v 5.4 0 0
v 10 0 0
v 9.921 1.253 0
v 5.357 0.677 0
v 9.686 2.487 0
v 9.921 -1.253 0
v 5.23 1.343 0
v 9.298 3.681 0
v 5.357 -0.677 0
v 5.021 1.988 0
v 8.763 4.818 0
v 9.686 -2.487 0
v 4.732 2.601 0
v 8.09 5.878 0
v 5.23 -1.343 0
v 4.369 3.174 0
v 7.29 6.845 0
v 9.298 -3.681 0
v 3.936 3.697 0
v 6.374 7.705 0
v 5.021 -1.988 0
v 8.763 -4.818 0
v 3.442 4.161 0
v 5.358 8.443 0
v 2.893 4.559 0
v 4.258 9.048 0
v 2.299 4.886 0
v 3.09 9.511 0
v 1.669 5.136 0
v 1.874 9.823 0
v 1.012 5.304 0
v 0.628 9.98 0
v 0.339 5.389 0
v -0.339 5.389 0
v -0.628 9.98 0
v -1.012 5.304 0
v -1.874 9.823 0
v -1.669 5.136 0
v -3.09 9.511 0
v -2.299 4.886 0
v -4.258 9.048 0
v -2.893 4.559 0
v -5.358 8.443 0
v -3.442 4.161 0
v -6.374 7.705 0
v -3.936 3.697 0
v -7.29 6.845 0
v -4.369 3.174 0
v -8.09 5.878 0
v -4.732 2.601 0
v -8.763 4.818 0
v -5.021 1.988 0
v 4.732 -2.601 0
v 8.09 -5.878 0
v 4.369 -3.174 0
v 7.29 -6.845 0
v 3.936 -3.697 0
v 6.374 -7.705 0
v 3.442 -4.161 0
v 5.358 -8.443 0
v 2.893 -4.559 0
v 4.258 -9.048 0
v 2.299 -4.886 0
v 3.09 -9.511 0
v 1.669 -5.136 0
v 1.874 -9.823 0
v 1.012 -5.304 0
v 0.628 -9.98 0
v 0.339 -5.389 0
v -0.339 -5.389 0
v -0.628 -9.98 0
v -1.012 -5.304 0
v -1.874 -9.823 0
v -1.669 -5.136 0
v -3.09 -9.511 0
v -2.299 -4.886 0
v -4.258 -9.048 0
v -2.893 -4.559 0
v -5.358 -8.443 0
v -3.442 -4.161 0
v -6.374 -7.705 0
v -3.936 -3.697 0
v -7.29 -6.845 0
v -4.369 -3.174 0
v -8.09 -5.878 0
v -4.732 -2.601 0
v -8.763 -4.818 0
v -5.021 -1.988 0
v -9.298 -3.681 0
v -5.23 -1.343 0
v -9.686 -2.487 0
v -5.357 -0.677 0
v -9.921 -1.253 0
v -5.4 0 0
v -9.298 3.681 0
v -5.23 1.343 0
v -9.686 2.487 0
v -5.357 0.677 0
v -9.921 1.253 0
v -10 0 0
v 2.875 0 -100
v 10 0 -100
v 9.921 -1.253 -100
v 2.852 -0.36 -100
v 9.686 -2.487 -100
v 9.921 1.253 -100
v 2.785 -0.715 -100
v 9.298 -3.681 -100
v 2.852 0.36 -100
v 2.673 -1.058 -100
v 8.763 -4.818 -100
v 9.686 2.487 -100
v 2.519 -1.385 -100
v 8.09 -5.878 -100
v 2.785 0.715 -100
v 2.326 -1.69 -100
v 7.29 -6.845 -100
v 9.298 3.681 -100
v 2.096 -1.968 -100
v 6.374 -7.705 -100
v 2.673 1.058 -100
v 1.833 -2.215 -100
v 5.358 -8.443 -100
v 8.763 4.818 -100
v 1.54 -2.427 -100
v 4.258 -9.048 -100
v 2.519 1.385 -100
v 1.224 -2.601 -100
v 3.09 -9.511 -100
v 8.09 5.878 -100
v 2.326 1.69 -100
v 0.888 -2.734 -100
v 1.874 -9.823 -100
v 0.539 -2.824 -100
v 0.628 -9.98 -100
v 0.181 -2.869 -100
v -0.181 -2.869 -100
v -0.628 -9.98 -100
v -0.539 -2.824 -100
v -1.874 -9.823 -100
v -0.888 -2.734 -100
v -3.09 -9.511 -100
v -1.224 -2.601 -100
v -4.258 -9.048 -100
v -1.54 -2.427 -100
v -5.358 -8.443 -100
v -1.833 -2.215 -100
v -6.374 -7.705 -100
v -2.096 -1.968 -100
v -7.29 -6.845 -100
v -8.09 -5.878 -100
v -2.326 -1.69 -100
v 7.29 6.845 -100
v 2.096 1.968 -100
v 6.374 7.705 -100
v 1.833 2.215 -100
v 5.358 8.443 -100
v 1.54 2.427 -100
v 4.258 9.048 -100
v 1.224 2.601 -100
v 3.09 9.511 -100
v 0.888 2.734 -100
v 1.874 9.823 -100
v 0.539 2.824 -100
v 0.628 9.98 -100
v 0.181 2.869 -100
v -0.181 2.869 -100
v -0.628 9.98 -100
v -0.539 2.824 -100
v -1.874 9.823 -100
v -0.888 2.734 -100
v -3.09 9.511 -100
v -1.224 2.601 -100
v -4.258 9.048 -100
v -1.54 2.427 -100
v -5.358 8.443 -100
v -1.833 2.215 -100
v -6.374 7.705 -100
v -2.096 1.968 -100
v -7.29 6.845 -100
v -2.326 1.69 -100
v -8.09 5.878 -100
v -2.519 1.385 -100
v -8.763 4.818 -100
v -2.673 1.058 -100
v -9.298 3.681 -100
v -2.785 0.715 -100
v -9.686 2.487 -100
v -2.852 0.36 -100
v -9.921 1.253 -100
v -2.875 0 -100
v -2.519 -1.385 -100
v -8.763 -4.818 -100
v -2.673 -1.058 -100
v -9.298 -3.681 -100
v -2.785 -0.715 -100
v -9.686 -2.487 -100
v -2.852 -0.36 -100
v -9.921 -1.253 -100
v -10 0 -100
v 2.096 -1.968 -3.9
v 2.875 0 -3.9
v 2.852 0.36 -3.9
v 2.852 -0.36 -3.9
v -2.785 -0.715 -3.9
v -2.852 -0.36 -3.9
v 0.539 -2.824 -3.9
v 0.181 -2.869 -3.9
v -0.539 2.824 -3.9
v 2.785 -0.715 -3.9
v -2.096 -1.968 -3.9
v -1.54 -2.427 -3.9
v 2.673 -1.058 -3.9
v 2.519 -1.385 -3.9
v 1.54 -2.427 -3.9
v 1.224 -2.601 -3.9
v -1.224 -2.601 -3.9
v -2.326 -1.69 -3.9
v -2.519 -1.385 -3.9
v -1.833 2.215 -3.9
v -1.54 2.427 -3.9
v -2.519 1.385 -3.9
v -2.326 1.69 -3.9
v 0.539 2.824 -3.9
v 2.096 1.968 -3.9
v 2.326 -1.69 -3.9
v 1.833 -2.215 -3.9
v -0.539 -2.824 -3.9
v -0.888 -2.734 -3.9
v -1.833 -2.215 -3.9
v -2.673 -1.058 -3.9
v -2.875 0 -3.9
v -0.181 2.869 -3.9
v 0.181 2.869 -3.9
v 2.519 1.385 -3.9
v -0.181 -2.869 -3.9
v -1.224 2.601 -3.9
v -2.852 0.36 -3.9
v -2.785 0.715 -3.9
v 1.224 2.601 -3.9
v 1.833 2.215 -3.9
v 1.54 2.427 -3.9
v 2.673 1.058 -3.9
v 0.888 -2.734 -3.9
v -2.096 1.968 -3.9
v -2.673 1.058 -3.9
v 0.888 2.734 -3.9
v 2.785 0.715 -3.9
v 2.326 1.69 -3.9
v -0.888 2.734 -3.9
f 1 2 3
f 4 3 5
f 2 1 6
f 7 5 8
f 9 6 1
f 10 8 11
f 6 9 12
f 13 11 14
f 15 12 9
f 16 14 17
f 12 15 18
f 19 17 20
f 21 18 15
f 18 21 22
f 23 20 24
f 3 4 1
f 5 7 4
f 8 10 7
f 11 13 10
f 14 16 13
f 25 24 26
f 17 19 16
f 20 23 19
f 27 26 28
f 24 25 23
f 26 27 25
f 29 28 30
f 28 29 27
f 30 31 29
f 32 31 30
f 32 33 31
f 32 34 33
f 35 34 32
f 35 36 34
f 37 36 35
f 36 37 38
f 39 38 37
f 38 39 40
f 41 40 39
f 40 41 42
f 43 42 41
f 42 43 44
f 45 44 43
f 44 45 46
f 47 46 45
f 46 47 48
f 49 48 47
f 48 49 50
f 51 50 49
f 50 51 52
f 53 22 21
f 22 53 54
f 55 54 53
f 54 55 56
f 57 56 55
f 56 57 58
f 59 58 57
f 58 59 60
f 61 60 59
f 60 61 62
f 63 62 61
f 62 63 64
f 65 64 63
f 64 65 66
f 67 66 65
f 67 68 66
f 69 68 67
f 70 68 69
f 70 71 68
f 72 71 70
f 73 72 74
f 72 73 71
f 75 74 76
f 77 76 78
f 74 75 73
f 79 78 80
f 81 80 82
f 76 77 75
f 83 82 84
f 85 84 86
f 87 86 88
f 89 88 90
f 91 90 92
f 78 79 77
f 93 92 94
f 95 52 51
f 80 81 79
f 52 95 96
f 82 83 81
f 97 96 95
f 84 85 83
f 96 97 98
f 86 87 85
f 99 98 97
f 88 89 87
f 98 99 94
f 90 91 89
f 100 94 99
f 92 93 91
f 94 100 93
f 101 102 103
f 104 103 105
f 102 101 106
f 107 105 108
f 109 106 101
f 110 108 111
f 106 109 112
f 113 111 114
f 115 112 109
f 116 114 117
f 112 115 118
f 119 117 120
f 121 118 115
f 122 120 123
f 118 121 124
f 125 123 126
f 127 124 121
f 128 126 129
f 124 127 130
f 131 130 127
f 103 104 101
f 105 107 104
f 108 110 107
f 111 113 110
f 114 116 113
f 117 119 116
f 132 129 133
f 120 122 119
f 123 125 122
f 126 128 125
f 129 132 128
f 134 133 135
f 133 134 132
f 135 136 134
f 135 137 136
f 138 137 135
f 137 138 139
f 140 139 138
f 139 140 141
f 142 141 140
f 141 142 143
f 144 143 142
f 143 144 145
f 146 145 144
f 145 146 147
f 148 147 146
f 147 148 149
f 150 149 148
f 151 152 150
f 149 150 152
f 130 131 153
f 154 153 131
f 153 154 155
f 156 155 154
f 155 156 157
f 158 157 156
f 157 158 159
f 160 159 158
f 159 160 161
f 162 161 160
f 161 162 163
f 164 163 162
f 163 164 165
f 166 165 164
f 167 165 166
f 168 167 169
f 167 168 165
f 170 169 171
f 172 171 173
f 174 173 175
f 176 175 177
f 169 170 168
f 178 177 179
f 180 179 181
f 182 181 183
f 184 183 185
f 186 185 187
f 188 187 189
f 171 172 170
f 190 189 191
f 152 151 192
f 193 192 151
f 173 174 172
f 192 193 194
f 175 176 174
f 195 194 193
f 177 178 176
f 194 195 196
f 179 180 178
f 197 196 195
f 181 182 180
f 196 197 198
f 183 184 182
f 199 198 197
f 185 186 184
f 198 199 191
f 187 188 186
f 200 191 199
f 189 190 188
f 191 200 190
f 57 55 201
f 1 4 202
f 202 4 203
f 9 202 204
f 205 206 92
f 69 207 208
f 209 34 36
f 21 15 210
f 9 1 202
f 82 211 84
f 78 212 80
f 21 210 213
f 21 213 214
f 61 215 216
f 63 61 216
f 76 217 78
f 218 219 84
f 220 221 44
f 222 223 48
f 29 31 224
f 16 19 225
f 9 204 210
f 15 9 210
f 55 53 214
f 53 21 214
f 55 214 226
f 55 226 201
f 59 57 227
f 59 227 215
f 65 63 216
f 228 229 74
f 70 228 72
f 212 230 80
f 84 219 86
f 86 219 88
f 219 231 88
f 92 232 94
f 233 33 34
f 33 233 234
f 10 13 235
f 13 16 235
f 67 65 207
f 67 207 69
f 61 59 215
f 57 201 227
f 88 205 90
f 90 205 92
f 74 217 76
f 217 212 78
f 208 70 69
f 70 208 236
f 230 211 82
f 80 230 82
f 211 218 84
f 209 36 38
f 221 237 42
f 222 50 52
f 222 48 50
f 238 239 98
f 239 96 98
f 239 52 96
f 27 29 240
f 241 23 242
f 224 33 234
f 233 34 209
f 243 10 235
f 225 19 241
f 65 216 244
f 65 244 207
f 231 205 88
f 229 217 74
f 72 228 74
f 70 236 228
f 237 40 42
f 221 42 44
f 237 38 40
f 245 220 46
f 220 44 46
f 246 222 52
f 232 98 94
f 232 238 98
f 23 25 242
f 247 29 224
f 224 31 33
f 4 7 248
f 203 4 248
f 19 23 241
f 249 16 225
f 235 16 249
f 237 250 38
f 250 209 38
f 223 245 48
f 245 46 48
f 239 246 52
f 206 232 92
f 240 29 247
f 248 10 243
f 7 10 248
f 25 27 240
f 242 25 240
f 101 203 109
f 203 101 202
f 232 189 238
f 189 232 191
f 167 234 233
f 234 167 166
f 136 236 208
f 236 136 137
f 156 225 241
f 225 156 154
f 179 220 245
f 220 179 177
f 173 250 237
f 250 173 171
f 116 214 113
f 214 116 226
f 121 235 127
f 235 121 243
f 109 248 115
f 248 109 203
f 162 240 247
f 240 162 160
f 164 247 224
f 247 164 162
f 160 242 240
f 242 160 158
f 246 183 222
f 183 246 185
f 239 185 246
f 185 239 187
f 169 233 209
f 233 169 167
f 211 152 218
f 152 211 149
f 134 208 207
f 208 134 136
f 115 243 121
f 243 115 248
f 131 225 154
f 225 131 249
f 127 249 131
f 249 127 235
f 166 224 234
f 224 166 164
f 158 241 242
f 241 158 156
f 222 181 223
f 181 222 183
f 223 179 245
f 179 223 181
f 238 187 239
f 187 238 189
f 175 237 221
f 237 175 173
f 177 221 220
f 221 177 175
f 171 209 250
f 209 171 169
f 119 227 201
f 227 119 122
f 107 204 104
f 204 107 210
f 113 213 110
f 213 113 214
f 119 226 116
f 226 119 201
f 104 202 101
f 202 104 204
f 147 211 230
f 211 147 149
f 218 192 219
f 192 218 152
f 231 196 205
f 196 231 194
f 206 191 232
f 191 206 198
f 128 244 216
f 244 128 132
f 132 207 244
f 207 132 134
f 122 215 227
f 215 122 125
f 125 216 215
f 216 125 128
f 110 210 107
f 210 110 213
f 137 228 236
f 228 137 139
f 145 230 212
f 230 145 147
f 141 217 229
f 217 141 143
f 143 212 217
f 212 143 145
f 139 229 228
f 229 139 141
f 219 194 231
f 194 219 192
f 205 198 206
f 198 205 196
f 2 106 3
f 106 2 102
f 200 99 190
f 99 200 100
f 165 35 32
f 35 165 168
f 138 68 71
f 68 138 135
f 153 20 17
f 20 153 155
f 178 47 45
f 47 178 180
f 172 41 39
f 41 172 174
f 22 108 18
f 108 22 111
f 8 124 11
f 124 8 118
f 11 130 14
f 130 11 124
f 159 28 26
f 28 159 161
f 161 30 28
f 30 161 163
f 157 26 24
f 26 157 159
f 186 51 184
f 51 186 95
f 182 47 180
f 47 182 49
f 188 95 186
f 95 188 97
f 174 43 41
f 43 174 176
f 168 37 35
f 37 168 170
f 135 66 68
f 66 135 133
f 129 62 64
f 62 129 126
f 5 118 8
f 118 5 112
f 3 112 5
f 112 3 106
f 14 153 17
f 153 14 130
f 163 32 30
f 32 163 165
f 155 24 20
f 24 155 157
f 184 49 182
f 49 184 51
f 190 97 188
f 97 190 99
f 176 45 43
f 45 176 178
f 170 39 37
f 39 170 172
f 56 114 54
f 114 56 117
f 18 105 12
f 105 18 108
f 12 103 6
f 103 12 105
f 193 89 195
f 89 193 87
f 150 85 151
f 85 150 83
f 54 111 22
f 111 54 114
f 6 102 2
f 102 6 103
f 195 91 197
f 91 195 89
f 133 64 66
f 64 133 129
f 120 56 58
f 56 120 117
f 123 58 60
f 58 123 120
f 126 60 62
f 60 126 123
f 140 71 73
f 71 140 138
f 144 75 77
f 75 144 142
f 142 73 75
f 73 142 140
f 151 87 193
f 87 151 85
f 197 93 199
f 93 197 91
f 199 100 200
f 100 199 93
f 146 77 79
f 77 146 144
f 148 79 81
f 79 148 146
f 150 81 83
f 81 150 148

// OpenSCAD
$fn = 50;


difference() {
	union() {
		translate(v = [0, 0, -100.0000000000]) {
			cylinder(h = 100, r = 10.0000000000);
		}
		cylinder(h = 0, r = 16.0000000000);
	}
	union() {
		translate(v = [0, 0, 0]) {
			rotate(a = [0, 0, 0]) {
				difference() {
					union() {
						#translate(v = [0, 0, -100.0000000000]) {
							cylinder(h = 100, r = 2.6000000000);
						}
						#translate(v = [0, 0, -3.9000000000]) {
							cylinder(h = 3.9000000000, r1 = 2.8750000000, r2 = 5.4000000000);
						}
						#translate(v = [0, 0, -100.0000000000]) {
							cylinder(h = 100, r = 2.8750000000);
						}
						#translate(v = [0, 0, -100.0000000000]) {
							cylinder(h = 100, r = 2.6000000000);
						}
					}
					union();
				}
			}
		}
	}
}
